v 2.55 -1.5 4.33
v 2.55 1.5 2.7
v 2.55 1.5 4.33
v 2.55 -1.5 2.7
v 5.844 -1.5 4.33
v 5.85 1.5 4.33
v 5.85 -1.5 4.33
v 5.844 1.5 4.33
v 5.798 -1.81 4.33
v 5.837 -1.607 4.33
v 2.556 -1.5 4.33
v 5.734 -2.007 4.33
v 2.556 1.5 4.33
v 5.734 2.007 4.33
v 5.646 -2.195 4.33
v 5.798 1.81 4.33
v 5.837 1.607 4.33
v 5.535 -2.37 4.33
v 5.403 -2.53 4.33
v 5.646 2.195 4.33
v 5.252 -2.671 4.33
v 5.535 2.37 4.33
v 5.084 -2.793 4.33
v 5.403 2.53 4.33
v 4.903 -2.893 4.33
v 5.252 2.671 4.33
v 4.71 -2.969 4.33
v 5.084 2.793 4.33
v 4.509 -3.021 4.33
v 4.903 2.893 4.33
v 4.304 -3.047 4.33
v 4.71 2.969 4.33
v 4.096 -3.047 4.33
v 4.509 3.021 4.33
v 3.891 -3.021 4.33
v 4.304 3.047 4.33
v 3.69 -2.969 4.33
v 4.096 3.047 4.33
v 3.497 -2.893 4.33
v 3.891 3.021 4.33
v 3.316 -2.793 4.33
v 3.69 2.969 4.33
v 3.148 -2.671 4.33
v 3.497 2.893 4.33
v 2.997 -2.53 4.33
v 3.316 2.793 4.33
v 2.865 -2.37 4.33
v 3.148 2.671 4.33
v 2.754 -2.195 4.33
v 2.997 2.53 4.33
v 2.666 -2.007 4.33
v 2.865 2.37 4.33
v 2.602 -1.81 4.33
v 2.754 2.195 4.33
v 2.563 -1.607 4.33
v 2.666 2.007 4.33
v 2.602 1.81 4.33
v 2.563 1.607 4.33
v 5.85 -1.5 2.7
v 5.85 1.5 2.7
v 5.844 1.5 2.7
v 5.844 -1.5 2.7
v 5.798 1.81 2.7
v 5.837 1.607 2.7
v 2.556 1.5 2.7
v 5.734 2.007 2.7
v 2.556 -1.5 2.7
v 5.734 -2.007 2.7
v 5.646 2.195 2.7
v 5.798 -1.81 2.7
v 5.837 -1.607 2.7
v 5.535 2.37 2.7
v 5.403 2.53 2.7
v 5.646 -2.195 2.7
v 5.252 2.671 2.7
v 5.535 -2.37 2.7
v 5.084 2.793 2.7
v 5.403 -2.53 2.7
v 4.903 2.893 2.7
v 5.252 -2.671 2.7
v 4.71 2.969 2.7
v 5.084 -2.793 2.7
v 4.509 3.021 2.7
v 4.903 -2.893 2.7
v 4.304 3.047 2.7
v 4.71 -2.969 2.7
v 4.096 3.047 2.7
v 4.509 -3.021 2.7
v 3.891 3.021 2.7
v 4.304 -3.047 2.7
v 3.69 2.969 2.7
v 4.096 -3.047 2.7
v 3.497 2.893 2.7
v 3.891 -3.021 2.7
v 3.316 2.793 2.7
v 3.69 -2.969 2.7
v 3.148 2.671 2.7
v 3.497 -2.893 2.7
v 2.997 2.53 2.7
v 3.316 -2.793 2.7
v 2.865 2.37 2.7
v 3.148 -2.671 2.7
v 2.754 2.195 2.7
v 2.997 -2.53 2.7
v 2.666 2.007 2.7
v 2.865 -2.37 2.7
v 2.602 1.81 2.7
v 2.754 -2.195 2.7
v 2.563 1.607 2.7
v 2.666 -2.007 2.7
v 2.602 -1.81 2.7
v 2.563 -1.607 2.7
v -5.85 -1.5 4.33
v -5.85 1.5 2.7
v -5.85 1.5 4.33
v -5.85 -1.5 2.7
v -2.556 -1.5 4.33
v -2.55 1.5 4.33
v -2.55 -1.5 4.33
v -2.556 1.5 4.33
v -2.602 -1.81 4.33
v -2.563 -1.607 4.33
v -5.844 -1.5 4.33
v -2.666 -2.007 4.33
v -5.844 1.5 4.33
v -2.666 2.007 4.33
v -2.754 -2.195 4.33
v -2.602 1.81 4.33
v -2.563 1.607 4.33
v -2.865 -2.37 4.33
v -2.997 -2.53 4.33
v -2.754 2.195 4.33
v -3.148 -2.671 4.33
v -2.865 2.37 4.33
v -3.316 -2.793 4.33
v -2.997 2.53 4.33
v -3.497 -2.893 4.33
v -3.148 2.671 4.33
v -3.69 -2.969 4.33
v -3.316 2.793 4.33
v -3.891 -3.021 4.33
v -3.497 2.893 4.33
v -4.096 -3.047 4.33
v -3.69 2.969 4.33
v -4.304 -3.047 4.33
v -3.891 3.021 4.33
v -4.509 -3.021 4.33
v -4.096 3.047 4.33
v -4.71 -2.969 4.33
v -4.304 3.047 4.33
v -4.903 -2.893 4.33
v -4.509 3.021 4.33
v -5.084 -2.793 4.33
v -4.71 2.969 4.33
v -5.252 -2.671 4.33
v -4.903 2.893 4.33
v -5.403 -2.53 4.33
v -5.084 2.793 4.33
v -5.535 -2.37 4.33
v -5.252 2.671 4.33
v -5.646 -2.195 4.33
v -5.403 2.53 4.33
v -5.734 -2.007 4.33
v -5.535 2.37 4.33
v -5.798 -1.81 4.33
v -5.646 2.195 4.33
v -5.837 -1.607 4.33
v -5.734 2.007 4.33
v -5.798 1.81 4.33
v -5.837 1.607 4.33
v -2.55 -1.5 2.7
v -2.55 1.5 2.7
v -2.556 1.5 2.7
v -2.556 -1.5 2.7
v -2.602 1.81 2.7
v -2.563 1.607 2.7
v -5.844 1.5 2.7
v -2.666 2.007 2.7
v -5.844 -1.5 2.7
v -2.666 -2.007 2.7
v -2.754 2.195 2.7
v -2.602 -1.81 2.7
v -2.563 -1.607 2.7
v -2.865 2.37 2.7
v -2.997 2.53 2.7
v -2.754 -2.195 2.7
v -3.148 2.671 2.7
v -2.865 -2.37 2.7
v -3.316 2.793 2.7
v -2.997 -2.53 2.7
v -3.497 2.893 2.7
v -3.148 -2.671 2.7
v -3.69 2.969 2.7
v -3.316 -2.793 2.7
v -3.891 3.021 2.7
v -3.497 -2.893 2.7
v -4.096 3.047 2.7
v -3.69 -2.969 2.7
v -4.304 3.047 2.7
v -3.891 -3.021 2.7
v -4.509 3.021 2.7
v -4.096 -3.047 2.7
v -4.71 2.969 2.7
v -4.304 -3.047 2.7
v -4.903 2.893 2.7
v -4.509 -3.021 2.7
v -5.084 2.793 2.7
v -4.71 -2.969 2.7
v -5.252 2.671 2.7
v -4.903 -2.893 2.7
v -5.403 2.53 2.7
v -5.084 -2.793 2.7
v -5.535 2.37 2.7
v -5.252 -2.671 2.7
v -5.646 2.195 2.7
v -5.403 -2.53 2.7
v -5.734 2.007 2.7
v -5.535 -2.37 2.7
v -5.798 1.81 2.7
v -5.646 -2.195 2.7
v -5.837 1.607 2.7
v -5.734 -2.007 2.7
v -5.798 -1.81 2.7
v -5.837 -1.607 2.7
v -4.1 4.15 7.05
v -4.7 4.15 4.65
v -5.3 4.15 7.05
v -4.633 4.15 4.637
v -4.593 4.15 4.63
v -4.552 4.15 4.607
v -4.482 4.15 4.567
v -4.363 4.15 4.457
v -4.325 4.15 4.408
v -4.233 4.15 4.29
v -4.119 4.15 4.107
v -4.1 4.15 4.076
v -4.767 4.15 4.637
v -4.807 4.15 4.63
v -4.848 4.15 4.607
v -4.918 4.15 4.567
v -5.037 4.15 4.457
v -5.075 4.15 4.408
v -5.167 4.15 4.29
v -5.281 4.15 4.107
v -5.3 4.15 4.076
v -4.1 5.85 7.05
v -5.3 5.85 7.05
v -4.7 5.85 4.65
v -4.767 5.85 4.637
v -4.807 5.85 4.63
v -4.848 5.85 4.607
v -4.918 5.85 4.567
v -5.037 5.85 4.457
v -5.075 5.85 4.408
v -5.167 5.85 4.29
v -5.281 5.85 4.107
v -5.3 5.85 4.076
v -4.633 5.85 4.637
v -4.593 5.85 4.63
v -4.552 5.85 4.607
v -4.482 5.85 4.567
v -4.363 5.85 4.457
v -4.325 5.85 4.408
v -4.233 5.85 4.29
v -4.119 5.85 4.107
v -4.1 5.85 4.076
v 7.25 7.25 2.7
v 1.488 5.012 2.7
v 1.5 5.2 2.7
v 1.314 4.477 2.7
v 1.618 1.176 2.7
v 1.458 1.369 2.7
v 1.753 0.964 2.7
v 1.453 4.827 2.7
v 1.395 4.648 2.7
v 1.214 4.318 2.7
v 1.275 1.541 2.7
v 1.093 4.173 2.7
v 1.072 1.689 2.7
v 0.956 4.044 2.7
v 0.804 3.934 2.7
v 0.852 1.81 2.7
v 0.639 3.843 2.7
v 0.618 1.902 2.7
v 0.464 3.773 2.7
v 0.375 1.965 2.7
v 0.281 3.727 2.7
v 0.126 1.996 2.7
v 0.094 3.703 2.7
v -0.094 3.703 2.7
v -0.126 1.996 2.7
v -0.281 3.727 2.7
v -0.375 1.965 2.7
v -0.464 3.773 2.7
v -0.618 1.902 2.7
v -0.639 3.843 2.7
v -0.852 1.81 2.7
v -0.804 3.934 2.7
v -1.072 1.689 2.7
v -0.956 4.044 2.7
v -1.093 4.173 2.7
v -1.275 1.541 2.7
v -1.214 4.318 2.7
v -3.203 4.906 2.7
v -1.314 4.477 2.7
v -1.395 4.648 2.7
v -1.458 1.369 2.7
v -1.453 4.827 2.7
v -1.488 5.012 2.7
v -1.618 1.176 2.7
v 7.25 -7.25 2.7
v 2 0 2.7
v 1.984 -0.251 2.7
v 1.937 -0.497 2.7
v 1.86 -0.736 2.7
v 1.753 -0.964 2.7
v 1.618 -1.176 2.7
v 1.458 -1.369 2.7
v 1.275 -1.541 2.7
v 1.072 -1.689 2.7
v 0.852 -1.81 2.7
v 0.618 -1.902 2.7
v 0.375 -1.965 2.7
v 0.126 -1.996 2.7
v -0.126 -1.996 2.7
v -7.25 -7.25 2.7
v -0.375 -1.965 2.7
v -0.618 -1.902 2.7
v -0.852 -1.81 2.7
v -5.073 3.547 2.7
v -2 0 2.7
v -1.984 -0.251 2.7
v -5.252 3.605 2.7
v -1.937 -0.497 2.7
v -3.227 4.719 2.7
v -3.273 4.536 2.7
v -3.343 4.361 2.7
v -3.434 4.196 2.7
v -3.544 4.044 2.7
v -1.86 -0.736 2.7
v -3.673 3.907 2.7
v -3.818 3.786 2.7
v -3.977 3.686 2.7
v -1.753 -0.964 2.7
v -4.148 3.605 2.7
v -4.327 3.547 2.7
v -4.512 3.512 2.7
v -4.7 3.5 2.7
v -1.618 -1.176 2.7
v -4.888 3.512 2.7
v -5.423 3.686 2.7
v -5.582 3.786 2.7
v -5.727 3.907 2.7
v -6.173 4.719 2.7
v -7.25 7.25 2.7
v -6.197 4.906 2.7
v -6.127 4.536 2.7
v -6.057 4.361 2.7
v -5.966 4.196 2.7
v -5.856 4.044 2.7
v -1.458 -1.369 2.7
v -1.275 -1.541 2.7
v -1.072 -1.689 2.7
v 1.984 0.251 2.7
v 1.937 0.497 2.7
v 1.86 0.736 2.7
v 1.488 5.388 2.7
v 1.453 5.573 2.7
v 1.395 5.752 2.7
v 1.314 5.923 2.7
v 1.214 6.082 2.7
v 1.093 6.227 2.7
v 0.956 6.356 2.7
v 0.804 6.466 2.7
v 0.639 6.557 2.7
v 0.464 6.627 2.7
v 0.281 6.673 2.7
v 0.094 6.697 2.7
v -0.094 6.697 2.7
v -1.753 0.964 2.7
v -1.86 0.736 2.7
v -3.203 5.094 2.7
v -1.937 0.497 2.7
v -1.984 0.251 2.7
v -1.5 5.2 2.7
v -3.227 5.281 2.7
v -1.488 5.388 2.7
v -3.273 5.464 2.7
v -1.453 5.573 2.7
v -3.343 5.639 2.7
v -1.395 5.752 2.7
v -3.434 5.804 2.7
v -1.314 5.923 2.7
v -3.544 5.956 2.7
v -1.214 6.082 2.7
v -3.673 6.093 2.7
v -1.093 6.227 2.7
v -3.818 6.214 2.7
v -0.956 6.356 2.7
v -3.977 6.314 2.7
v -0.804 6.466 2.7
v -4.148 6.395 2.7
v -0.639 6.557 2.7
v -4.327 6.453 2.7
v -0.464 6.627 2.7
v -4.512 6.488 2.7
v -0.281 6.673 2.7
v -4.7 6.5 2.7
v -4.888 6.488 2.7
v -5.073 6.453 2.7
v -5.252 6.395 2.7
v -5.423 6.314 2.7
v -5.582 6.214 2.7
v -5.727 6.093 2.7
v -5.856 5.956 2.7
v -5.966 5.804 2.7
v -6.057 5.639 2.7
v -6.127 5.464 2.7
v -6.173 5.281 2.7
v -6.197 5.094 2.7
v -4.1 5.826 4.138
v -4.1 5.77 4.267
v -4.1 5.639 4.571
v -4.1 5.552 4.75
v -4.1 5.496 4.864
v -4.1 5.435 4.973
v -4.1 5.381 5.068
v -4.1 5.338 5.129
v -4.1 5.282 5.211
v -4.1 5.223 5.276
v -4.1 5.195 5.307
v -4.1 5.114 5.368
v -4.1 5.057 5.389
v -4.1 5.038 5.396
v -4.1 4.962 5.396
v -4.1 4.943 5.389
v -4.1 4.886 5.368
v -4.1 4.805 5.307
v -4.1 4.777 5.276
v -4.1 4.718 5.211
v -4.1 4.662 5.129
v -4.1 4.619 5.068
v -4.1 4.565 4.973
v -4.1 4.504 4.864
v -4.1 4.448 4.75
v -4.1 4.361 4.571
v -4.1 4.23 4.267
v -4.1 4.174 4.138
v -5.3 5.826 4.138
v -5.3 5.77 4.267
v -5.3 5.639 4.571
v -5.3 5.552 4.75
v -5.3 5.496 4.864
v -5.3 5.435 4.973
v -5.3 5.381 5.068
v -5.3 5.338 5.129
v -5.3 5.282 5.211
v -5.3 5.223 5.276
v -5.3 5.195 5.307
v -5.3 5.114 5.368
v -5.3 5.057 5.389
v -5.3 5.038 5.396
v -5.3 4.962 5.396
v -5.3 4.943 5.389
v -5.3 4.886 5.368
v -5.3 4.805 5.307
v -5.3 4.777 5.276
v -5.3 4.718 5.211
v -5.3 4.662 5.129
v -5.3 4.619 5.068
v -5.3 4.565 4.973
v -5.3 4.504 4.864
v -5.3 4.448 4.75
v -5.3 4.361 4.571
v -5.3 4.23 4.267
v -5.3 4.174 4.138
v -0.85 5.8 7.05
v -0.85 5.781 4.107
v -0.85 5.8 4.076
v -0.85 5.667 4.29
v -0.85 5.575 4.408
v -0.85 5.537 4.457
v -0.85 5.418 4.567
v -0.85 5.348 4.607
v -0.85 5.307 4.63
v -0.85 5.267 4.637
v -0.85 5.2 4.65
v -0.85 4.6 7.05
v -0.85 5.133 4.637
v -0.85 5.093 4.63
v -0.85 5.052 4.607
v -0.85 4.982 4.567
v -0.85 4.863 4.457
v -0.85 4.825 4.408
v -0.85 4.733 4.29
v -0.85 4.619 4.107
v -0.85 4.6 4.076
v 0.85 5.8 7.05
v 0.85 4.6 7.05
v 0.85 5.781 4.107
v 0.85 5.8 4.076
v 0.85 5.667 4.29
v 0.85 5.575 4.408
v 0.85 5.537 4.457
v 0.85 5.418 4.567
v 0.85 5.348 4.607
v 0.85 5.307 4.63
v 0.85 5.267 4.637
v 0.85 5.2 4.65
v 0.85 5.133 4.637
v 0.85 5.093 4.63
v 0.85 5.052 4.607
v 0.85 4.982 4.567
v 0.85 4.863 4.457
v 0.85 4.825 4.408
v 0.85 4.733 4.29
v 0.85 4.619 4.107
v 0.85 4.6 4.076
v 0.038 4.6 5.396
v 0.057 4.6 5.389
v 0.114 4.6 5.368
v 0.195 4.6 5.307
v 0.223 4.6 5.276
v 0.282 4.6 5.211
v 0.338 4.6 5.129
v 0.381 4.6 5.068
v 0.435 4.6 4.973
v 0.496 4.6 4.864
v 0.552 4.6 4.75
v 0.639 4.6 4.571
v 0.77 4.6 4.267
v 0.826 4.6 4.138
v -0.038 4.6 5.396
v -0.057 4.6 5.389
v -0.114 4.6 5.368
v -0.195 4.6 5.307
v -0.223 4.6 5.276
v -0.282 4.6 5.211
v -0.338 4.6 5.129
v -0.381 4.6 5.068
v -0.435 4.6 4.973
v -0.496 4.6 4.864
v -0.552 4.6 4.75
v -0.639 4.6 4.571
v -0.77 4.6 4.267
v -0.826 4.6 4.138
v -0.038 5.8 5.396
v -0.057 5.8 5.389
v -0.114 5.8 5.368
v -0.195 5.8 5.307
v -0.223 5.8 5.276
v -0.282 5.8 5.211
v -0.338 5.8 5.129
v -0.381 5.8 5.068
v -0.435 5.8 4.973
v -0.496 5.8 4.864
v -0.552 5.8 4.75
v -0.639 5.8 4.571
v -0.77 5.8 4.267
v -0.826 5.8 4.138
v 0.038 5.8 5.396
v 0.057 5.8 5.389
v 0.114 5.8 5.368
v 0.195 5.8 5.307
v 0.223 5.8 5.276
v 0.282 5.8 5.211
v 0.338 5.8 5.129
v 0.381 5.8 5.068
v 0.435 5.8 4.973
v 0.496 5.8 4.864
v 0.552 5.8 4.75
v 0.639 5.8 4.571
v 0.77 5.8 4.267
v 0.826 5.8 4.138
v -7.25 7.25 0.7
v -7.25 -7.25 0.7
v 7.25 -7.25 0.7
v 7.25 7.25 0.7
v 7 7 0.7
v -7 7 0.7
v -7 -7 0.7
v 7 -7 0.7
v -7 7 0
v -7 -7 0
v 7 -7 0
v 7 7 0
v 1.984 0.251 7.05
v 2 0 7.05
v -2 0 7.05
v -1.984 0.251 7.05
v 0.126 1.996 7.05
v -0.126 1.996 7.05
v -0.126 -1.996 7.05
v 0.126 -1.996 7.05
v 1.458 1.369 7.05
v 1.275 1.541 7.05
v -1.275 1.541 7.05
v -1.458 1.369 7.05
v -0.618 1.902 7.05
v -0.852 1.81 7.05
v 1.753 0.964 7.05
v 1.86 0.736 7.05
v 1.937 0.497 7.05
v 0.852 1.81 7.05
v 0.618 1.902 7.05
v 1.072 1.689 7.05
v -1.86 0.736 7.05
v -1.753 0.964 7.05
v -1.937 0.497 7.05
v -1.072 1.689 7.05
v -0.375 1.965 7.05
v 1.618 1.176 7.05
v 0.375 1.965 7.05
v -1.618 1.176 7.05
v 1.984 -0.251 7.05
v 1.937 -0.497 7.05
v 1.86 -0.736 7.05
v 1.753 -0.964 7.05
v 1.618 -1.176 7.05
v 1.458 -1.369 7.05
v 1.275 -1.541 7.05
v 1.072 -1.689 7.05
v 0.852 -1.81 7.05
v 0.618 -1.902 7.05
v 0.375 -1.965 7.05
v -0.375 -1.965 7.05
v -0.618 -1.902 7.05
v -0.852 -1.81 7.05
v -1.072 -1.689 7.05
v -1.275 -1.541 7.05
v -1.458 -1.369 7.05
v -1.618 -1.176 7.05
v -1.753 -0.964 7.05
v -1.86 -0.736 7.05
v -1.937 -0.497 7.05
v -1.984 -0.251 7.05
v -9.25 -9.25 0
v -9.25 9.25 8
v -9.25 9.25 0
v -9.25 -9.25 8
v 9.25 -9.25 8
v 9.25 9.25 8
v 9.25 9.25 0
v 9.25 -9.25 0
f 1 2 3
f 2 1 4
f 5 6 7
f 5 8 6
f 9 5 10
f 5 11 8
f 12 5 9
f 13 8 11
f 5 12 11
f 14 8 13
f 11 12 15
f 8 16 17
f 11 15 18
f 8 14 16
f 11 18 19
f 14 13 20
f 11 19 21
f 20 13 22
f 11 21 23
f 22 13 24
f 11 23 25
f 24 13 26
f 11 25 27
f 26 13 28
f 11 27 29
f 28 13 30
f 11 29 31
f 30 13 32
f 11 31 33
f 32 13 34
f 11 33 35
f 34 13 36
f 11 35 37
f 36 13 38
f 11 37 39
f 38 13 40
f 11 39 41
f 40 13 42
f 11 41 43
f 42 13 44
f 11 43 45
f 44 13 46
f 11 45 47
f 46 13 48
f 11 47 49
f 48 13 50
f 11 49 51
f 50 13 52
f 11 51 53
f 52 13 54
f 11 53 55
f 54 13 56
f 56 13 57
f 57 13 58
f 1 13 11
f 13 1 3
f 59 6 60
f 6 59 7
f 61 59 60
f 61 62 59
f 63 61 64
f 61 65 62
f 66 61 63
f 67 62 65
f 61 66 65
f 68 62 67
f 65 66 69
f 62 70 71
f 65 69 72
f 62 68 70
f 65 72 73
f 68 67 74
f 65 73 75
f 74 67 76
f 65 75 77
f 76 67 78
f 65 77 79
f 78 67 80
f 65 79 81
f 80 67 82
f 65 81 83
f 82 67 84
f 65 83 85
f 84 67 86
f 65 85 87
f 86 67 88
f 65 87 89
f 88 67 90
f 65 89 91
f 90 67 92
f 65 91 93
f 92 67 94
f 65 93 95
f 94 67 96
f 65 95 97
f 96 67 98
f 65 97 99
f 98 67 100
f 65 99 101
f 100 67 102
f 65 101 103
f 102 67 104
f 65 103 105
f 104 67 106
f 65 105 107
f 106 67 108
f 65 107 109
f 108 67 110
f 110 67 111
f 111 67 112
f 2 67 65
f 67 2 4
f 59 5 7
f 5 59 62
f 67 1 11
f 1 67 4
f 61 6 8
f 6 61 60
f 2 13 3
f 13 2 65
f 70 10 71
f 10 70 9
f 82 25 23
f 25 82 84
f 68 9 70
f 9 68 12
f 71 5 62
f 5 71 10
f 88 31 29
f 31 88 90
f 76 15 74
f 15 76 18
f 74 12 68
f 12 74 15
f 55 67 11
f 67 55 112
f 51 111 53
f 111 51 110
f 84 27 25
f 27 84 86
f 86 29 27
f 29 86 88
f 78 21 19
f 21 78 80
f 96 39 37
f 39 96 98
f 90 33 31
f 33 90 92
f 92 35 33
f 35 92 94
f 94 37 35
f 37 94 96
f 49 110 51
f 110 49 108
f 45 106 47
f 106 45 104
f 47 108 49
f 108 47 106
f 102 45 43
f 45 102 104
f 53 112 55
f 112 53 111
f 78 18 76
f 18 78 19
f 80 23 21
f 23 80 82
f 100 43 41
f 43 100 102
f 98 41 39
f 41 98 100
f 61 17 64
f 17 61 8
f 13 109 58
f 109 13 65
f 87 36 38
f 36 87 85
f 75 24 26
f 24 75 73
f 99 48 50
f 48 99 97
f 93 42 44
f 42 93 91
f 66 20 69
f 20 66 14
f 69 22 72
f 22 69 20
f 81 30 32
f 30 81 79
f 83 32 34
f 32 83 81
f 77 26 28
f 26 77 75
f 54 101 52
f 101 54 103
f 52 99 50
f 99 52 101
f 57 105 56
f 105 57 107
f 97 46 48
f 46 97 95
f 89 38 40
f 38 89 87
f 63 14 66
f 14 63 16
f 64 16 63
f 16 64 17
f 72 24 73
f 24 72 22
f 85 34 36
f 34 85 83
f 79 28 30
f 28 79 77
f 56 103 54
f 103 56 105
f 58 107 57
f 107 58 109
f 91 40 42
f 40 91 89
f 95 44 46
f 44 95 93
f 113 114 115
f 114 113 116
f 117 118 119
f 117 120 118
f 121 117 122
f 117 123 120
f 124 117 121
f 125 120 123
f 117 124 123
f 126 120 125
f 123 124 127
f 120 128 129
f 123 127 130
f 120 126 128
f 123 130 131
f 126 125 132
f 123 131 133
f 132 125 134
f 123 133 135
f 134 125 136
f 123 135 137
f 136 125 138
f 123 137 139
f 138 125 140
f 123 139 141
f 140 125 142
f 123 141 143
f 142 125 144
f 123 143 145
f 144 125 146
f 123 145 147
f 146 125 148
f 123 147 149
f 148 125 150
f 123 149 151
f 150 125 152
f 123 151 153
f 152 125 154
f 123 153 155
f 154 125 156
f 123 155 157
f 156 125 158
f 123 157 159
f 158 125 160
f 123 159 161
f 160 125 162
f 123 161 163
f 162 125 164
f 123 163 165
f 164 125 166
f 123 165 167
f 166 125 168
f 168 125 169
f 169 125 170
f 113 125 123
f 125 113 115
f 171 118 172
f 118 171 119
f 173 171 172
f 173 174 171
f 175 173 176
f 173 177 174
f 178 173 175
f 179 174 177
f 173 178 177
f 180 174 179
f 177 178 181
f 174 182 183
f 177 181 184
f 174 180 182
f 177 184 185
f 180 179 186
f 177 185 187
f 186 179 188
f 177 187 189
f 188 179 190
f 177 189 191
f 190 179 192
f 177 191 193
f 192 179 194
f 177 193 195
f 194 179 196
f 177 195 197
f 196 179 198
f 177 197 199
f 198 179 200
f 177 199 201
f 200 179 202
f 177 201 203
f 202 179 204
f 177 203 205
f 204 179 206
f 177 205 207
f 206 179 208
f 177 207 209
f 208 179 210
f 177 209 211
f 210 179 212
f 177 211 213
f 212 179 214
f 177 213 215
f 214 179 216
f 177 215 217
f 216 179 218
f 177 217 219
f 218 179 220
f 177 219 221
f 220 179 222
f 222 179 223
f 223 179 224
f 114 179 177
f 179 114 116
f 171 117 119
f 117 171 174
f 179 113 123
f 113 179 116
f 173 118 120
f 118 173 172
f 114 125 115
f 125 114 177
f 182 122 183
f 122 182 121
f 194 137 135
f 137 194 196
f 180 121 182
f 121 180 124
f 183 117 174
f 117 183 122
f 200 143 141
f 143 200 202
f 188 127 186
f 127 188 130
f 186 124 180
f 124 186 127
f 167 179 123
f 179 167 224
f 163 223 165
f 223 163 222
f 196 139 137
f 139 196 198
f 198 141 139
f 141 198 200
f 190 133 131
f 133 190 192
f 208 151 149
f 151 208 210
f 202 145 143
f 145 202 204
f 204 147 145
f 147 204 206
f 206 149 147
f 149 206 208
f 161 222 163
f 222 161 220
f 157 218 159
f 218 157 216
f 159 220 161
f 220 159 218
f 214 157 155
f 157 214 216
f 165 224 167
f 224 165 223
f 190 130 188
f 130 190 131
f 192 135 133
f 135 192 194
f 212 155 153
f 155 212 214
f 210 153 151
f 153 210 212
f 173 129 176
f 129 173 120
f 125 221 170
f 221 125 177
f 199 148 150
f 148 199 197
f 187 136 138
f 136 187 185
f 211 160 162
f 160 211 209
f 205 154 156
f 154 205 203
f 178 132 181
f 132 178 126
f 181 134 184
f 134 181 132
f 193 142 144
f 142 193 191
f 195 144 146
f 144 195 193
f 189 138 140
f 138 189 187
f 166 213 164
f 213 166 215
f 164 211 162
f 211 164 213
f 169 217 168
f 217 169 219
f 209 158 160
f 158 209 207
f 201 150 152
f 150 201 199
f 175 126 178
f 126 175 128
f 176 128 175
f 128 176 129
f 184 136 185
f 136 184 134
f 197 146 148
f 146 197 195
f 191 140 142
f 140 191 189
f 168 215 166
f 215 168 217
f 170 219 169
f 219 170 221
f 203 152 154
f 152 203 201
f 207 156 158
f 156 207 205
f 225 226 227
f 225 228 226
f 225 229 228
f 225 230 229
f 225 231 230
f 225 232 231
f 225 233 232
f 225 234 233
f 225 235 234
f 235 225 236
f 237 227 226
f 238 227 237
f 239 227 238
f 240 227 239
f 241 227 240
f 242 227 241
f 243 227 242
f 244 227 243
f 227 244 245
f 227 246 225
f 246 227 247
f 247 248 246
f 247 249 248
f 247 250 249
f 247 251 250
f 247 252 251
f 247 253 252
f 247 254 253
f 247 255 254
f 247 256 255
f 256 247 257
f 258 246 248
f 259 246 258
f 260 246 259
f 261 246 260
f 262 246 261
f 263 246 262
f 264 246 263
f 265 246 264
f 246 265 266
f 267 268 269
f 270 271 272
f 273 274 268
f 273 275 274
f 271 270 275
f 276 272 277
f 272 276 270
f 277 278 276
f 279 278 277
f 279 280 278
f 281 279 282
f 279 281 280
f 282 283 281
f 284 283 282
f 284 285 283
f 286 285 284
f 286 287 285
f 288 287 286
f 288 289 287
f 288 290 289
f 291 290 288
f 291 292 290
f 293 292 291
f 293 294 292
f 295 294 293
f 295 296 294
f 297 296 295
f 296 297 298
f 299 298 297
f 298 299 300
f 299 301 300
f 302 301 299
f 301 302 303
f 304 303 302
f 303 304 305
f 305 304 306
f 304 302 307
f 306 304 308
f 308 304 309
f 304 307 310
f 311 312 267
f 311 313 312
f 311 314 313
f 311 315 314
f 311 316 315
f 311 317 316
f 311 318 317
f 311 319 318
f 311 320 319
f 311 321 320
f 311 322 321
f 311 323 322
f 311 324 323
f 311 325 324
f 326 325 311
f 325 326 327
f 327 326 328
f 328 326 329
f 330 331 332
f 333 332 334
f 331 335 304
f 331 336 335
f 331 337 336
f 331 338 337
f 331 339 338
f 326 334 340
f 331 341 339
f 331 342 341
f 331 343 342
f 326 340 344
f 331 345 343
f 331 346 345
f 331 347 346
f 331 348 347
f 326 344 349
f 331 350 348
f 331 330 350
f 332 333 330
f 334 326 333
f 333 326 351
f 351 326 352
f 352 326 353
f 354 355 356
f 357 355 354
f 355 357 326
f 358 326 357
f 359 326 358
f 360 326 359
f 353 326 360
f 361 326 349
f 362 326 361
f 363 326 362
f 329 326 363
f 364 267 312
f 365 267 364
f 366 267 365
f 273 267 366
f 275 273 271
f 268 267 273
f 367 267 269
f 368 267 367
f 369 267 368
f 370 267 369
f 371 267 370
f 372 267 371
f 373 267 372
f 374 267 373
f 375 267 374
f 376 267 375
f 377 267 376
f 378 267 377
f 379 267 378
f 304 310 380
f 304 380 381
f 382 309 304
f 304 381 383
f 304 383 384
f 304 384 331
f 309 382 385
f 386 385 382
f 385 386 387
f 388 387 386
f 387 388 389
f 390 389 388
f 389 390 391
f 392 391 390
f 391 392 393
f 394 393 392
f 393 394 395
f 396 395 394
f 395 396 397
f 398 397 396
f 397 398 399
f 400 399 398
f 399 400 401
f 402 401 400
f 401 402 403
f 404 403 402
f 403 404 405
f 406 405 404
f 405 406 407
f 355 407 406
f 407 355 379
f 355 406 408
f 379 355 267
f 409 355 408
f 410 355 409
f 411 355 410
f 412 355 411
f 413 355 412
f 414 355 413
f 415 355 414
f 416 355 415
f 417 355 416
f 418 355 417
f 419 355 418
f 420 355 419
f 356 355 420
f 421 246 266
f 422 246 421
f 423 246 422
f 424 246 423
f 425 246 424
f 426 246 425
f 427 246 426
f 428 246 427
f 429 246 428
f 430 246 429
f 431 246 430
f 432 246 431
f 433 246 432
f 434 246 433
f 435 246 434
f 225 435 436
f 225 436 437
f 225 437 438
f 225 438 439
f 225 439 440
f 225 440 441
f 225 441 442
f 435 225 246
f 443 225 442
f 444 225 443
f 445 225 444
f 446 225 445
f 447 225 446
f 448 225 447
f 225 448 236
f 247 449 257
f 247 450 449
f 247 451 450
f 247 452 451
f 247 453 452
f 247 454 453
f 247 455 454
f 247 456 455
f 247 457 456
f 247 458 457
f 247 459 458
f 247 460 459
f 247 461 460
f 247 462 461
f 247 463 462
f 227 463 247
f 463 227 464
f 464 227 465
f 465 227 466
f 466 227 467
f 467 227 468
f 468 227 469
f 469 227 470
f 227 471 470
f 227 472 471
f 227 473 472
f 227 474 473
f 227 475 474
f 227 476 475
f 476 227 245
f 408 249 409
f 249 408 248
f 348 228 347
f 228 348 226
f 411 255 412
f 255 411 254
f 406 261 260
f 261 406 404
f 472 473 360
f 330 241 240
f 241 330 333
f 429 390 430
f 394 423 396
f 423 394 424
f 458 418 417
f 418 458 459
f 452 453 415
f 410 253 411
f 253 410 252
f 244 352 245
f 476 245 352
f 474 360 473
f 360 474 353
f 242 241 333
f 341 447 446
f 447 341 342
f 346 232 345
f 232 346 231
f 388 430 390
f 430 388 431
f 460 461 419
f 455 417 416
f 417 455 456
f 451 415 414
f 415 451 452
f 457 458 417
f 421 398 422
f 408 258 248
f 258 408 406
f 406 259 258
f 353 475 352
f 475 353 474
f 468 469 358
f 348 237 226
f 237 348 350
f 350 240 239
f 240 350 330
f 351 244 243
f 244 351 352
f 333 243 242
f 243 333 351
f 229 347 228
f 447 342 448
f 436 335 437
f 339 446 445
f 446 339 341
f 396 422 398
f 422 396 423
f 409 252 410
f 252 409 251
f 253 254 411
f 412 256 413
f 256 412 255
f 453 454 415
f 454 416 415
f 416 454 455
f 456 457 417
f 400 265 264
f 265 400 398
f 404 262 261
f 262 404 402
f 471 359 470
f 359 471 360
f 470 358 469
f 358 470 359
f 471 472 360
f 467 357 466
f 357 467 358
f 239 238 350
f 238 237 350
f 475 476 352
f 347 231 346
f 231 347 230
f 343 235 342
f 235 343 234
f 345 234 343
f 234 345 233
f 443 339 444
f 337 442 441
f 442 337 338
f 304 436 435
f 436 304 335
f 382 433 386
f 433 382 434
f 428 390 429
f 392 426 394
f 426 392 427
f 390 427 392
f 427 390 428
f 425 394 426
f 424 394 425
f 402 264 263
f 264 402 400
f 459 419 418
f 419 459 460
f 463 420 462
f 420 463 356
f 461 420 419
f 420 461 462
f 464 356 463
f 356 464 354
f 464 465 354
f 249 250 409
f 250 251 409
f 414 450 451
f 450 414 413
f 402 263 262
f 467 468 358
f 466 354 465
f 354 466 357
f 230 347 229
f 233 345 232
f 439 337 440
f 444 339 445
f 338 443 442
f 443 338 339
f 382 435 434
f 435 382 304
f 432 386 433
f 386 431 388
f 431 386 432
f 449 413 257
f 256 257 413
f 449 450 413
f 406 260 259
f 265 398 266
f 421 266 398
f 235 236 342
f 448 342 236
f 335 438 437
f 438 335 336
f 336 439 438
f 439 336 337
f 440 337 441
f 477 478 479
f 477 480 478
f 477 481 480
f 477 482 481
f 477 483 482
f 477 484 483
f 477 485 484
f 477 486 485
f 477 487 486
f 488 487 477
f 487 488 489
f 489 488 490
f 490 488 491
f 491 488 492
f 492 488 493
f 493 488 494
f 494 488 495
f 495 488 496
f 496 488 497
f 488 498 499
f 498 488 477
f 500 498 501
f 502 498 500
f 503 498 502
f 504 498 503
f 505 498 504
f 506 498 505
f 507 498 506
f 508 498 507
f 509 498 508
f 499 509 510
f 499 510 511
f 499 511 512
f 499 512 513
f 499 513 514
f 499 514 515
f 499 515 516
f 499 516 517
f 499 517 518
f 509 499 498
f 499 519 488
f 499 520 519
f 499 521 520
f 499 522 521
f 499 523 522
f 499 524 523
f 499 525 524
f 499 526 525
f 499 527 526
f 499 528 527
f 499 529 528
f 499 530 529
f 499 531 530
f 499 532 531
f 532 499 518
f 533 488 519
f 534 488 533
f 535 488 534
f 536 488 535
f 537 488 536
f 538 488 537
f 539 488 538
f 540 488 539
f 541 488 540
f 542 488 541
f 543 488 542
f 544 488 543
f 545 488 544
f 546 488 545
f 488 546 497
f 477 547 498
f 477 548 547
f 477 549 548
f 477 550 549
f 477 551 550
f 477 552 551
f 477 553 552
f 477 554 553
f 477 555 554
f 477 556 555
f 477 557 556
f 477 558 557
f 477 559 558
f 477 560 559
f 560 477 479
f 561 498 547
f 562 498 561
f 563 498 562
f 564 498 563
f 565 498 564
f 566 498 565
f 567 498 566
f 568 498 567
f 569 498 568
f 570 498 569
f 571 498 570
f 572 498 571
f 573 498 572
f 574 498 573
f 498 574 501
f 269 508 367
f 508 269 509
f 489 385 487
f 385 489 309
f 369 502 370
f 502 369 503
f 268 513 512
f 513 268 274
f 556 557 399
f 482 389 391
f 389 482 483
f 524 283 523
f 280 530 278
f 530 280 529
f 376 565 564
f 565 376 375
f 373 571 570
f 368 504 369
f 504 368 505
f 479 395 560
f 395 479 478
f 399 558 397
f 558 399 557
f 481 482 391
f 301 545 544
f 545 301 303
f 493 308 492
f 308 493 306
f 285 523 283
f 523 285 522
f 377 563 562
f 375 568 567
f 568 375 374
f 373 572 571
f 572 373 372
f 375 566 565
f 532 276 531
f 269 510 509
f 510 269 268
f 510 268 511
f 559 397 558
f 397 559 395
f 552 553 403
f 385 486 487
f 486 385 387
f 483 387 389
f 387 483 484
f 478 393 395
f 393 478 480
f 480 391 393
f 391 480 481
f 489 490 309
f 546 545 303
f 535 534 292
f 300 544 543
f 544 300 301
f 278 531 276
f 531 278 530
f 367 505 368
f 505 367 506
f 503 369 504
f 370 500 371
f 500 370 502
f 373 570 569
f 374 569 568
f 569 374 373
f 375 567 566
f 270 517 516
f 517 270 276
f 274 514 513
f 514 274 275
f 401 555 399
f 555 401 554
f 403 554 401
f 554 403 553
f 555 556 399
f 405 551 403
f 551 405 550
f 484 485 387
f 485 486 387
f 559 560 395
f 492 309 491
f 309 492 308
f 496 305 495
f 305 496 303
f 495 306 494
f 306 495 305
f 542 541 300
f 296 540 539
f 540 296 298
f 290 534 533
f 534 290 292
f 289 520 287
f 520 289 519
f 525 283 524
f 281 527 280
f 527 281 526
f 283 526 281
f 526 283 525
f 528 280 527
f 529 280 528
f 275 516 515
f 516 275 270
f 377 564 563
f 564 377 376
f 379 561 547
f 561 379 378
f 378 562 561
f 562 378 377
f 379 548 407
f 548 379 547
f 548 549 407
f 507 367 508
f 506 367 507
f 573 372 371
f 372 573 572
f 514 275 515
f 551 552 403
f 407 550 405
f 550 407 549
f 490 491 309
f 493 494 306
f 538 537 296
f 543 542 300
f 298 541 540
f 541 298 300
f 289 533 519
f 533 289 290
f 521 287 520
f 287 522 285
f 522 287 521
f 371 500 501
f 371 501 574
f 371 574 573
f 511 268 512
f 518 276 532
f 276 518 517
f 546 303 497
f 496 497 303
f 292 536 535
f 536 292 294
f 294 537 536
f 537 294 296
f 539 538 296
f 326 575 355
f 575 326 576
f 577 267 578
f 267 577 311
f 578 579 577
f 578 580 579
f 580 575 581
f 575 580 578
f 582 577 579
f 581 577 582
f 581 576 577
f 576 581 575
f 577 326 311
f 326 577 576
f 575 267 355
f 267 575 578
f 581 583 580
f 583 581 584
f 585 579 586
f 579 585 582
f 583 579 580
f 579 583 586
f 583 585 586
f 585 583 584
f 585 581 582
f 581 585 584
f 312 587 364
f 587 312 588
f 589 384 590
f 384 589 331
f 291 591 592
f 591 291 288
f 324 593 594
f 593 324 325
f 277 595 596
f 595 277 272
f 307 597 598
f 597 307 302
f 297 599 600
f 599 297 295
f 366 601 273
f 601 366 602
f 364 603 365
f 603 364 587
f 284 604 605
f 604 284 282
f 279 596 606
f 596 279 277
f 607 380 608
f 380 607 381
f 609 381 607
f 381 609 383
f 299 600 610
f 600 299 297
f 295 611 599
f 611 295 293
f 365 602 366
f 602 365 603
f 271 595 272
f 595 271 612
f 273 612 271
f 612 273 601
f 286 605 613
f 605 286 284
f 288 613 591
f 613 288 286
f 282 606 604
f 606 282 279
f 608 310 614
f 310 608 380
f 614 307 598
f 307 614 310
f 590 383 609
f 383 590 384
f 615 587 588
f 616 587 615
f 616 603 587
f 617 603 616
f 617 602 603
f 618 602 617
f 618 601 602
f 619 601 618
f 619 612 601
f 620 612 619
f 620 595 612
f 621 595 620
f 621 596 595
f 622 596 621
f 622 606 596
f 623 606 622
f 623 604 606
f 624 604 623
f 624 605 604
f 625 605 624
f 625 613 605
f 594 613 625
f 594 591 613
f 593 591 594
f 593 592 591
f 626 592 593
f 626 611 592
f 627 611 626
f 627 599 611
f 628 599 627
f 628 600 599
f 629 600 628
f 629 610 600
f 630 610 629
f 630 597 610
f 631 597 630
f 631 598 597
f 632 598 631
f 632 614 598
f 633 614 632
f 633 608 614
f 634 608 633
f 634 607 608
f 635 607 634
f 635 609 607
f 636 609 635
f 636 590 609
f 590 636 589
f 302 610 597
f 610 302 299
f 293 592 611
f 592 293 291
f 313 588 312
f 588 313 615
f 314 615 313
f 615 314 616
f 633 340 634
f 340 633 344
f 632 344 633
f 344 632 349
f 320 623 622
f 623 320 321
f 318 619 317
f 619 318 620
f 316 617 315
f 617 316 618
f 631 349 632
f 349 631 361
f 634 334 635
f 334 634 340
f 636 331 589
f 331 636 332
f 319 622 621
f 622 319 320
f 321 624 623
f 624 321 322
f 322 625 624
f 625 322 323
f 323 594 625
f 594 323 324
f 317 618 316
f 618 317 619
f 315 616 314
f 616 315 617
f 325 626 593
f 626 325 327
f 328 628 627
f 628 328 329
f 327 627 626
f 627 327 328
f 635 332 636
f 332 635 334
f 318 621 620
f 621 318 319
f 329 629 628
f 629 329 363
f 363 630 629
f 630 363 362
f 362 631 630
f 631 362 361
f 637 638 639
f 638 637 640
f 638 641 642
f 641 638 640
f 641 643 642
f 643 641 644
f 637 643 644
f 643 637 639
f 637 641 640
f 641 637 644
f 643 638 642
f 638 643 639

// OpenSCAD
// Generated by SolidPython 1.1.3 on 2023-02-26 18:38:11
$fn = 50;


difference() {
	translate(v = [0, 0, 4.0000000000]) {
		cube(center = true, size = [18.5000000000, 18.5000000000, 8]);
	}
	translate(v = [0, 0, 2.7000000000]) {
		union() {
			translate(v = [0, 0, 0.8150000000]) {
				translate(v = [4.2000000000, 0, 0]) {
					union() {
						cube(center = true, size = [3.3000000000, 3, 1.6300000000]);
						translate(v = [0, -1.4000000000, 0]) {
							cylinder(center = true, d = 3.3000000000, h = 1.6300000000);
						}
						translate(v = [0, 1.4000000000, 0]) {
							cylinder(center = true, d = 3.3000000000, h = 1.6300000000);
						}
					}
				}
			}
			translate(v = [0, 0, 2.1750000000]) {
				cylinder(center = true, d = 4, h = 4.3500000000);
			}
			translate(v = [0, 0, 0.8150000000]) {
				translate(v = [-4.2000000000, 0, 0]) {
					union() {
						cube(center = true, size = [3.3000000000, 3, 1.6300000000]);
						translate(v = [0, -1.4000000000, 0]) {
							cylinder(center = true, d = 3.3000000000, h = 1.6300000000);
						}
						translate(v = [0, 1.4000000000, 0]) {
							cylinder(center = true, d = 3.3000000000, h = 1.6300000000);
						}
					}
				}
			}
			union() {
				translate(v = [0, 5, 0]) {
					translate(v = [-4.7000000000, 0, 0]) {
						rotate(a = [0, 0, 90]) {
							union() {
								translate(v = [0, 0, 2.1750000000]) {
									cube(center = true, size = [1.7000000000, 1.2000000000, 4.3500000000]);
								}
								cylinder(d = 1, d1 = 3, h = 3);
							}
						}
					}
				}
				translate(v = [0, 5.2000000000, 0]) {
					union() {
						translate(v = [0, 0, 2.1750000000]) {
							cube(center = true, size = [1.7000000000, 1.2000000000, 4.3500000000]);
						}
						cylinder(d = 1, d1 = 3, h = 3);
					}
				}
			}
			union() {
				translate(v = [0, 0, -1.0000000000]) {
					cube(center = true, size = [14.5000000000, 14.5000000000, 2]);
				}
				translate(v = [0, 0, -2.3500000000]) {
					cube(center = true, size = [14, 14, 0.7000000000]);
				}
			}
		}
	}
}
/***********************************************
*********      SolidPython code:      **********
************************************************
 

from solid import *
from solid.utils import *
import glob
SEGMENTS=50

for file_name in glob.glob("openscad-extra/src/*.scad"):
    use(file_name)

conf = {
    "side_leg_height": 1.63,
    "side_leg_width": 3.3,
    "side_leg_distance_cylinders": 1.4,
    "side_leg_width_spacer": 3,
    "mid_leg_height": 4.35,
    "mid_leg_diameter": 4,
    "mid_to_side_horizontal": 4.2,
    "pin_hole_x": 1.7,
    "pin_hole_y": 1.2,
    "pin_cone_d": 1,
    "pin_cone_d1":3, 
    "pin_cone_h": 3,
    "pin_diode_vertical":-5.2,
    "pin_clean_vertical": -5,
    "pin_to_center_horizontal":-4.7,
    "switch_body_x": 14.5,
    "switch_body_y": 14.5,
    "switch_body_height": 2,
    "switch_body_wedge_edge": 14,
    "switch_body_wedge_height": 0.7,
    "switch_sizes_x": 18.5,
    "switch_sizes_y": 18.5,
    "switch_sizes_height":8
}

pin_coords = [conf['pin_to_center_horizontal'], conf['pin_clean_vertical']]
pin_diode_coords  = [0, conf['pin_diode_vertical']]

leg_side =  cube([conf['side_leg_width'], conf['side_leg_width_spacer'], conf['side_leg_height']], center=True)
leg_side += forward(-conf['side_leg_distance_cylinders'])(cylinder(d=conf['side_leg_width'], h=conf['side_leg_height'], center=True))
leg_side += forward(conf['side_leg_distance_cylinders'])(cylinder(d=conf['side_leg_width'], h=conf['side_leg_height'],center=True))

leg_center = cylinder(d=conf['mid_leg_diameter'], h=conf['mid_leg_height'], center=True)

switch_footprint =   up(conf['side_leg_height']/2)(left(-conf['mid_to_side_horizontal'])(leg_side))
switch_footprint +=  up(conf['mid_leg_height']/2)(leg_center)
switch_footprint +=  up(conf['side_leg_height']/2)(left(conf['mid_to_side_horizontal'])(leg_side))


pin_hole =  up(conf['mid_leg_height']/2)(cube([conf['pin_hole_x'],conf['pin_hole_y'],conf['mid_leg_height']], center=True))
pin_hole +=  cylinder(d=conf['pin_cone_d'], d1=conf['pin_cone_d1'], h=conf['pin_cone_h'])

switch_pin_holes =  back(conf['pin_clean_vertical'])(right(conf['pin_to_center_horizontal'])(rotate([0, 0, 90])(pin_hole))) + back(conf['pin_diode_vertical'])(pin_hole)

switch_body_lock =   down(conf['switch_body_height']/2) (cube([conf['switch_body_x'], conf['switch_body_y'], conf['switch_body_height']], center=True)) 
switch_body_lock +=  down(conf['switch_body_height'] + conf['switch_body_wedge_height']/2)(cube([conf['switch_body_wedge_edge'], conf['switch_body_wedge_edge'], conf['switch_body_wedge_height']], center=True))

switch_body = up(conf['switch_body_wedge_height']  +conf['switch_body_height'] )(switch_footprint+switch_pin_holes+switch_body_lock)


switch_body_real = up(conf['switch_sizes_height']/2)(cube([conf['switch_sizes_x'], conf['switch_sizes_y'], conf['switch_sizes_height']], center=True)) - switch_body
scad_render_to_file(switch_body_real, 'switch_footprint.scad',file_header=f'$fn = {SEGMENTS};')  
 
************************************************/
